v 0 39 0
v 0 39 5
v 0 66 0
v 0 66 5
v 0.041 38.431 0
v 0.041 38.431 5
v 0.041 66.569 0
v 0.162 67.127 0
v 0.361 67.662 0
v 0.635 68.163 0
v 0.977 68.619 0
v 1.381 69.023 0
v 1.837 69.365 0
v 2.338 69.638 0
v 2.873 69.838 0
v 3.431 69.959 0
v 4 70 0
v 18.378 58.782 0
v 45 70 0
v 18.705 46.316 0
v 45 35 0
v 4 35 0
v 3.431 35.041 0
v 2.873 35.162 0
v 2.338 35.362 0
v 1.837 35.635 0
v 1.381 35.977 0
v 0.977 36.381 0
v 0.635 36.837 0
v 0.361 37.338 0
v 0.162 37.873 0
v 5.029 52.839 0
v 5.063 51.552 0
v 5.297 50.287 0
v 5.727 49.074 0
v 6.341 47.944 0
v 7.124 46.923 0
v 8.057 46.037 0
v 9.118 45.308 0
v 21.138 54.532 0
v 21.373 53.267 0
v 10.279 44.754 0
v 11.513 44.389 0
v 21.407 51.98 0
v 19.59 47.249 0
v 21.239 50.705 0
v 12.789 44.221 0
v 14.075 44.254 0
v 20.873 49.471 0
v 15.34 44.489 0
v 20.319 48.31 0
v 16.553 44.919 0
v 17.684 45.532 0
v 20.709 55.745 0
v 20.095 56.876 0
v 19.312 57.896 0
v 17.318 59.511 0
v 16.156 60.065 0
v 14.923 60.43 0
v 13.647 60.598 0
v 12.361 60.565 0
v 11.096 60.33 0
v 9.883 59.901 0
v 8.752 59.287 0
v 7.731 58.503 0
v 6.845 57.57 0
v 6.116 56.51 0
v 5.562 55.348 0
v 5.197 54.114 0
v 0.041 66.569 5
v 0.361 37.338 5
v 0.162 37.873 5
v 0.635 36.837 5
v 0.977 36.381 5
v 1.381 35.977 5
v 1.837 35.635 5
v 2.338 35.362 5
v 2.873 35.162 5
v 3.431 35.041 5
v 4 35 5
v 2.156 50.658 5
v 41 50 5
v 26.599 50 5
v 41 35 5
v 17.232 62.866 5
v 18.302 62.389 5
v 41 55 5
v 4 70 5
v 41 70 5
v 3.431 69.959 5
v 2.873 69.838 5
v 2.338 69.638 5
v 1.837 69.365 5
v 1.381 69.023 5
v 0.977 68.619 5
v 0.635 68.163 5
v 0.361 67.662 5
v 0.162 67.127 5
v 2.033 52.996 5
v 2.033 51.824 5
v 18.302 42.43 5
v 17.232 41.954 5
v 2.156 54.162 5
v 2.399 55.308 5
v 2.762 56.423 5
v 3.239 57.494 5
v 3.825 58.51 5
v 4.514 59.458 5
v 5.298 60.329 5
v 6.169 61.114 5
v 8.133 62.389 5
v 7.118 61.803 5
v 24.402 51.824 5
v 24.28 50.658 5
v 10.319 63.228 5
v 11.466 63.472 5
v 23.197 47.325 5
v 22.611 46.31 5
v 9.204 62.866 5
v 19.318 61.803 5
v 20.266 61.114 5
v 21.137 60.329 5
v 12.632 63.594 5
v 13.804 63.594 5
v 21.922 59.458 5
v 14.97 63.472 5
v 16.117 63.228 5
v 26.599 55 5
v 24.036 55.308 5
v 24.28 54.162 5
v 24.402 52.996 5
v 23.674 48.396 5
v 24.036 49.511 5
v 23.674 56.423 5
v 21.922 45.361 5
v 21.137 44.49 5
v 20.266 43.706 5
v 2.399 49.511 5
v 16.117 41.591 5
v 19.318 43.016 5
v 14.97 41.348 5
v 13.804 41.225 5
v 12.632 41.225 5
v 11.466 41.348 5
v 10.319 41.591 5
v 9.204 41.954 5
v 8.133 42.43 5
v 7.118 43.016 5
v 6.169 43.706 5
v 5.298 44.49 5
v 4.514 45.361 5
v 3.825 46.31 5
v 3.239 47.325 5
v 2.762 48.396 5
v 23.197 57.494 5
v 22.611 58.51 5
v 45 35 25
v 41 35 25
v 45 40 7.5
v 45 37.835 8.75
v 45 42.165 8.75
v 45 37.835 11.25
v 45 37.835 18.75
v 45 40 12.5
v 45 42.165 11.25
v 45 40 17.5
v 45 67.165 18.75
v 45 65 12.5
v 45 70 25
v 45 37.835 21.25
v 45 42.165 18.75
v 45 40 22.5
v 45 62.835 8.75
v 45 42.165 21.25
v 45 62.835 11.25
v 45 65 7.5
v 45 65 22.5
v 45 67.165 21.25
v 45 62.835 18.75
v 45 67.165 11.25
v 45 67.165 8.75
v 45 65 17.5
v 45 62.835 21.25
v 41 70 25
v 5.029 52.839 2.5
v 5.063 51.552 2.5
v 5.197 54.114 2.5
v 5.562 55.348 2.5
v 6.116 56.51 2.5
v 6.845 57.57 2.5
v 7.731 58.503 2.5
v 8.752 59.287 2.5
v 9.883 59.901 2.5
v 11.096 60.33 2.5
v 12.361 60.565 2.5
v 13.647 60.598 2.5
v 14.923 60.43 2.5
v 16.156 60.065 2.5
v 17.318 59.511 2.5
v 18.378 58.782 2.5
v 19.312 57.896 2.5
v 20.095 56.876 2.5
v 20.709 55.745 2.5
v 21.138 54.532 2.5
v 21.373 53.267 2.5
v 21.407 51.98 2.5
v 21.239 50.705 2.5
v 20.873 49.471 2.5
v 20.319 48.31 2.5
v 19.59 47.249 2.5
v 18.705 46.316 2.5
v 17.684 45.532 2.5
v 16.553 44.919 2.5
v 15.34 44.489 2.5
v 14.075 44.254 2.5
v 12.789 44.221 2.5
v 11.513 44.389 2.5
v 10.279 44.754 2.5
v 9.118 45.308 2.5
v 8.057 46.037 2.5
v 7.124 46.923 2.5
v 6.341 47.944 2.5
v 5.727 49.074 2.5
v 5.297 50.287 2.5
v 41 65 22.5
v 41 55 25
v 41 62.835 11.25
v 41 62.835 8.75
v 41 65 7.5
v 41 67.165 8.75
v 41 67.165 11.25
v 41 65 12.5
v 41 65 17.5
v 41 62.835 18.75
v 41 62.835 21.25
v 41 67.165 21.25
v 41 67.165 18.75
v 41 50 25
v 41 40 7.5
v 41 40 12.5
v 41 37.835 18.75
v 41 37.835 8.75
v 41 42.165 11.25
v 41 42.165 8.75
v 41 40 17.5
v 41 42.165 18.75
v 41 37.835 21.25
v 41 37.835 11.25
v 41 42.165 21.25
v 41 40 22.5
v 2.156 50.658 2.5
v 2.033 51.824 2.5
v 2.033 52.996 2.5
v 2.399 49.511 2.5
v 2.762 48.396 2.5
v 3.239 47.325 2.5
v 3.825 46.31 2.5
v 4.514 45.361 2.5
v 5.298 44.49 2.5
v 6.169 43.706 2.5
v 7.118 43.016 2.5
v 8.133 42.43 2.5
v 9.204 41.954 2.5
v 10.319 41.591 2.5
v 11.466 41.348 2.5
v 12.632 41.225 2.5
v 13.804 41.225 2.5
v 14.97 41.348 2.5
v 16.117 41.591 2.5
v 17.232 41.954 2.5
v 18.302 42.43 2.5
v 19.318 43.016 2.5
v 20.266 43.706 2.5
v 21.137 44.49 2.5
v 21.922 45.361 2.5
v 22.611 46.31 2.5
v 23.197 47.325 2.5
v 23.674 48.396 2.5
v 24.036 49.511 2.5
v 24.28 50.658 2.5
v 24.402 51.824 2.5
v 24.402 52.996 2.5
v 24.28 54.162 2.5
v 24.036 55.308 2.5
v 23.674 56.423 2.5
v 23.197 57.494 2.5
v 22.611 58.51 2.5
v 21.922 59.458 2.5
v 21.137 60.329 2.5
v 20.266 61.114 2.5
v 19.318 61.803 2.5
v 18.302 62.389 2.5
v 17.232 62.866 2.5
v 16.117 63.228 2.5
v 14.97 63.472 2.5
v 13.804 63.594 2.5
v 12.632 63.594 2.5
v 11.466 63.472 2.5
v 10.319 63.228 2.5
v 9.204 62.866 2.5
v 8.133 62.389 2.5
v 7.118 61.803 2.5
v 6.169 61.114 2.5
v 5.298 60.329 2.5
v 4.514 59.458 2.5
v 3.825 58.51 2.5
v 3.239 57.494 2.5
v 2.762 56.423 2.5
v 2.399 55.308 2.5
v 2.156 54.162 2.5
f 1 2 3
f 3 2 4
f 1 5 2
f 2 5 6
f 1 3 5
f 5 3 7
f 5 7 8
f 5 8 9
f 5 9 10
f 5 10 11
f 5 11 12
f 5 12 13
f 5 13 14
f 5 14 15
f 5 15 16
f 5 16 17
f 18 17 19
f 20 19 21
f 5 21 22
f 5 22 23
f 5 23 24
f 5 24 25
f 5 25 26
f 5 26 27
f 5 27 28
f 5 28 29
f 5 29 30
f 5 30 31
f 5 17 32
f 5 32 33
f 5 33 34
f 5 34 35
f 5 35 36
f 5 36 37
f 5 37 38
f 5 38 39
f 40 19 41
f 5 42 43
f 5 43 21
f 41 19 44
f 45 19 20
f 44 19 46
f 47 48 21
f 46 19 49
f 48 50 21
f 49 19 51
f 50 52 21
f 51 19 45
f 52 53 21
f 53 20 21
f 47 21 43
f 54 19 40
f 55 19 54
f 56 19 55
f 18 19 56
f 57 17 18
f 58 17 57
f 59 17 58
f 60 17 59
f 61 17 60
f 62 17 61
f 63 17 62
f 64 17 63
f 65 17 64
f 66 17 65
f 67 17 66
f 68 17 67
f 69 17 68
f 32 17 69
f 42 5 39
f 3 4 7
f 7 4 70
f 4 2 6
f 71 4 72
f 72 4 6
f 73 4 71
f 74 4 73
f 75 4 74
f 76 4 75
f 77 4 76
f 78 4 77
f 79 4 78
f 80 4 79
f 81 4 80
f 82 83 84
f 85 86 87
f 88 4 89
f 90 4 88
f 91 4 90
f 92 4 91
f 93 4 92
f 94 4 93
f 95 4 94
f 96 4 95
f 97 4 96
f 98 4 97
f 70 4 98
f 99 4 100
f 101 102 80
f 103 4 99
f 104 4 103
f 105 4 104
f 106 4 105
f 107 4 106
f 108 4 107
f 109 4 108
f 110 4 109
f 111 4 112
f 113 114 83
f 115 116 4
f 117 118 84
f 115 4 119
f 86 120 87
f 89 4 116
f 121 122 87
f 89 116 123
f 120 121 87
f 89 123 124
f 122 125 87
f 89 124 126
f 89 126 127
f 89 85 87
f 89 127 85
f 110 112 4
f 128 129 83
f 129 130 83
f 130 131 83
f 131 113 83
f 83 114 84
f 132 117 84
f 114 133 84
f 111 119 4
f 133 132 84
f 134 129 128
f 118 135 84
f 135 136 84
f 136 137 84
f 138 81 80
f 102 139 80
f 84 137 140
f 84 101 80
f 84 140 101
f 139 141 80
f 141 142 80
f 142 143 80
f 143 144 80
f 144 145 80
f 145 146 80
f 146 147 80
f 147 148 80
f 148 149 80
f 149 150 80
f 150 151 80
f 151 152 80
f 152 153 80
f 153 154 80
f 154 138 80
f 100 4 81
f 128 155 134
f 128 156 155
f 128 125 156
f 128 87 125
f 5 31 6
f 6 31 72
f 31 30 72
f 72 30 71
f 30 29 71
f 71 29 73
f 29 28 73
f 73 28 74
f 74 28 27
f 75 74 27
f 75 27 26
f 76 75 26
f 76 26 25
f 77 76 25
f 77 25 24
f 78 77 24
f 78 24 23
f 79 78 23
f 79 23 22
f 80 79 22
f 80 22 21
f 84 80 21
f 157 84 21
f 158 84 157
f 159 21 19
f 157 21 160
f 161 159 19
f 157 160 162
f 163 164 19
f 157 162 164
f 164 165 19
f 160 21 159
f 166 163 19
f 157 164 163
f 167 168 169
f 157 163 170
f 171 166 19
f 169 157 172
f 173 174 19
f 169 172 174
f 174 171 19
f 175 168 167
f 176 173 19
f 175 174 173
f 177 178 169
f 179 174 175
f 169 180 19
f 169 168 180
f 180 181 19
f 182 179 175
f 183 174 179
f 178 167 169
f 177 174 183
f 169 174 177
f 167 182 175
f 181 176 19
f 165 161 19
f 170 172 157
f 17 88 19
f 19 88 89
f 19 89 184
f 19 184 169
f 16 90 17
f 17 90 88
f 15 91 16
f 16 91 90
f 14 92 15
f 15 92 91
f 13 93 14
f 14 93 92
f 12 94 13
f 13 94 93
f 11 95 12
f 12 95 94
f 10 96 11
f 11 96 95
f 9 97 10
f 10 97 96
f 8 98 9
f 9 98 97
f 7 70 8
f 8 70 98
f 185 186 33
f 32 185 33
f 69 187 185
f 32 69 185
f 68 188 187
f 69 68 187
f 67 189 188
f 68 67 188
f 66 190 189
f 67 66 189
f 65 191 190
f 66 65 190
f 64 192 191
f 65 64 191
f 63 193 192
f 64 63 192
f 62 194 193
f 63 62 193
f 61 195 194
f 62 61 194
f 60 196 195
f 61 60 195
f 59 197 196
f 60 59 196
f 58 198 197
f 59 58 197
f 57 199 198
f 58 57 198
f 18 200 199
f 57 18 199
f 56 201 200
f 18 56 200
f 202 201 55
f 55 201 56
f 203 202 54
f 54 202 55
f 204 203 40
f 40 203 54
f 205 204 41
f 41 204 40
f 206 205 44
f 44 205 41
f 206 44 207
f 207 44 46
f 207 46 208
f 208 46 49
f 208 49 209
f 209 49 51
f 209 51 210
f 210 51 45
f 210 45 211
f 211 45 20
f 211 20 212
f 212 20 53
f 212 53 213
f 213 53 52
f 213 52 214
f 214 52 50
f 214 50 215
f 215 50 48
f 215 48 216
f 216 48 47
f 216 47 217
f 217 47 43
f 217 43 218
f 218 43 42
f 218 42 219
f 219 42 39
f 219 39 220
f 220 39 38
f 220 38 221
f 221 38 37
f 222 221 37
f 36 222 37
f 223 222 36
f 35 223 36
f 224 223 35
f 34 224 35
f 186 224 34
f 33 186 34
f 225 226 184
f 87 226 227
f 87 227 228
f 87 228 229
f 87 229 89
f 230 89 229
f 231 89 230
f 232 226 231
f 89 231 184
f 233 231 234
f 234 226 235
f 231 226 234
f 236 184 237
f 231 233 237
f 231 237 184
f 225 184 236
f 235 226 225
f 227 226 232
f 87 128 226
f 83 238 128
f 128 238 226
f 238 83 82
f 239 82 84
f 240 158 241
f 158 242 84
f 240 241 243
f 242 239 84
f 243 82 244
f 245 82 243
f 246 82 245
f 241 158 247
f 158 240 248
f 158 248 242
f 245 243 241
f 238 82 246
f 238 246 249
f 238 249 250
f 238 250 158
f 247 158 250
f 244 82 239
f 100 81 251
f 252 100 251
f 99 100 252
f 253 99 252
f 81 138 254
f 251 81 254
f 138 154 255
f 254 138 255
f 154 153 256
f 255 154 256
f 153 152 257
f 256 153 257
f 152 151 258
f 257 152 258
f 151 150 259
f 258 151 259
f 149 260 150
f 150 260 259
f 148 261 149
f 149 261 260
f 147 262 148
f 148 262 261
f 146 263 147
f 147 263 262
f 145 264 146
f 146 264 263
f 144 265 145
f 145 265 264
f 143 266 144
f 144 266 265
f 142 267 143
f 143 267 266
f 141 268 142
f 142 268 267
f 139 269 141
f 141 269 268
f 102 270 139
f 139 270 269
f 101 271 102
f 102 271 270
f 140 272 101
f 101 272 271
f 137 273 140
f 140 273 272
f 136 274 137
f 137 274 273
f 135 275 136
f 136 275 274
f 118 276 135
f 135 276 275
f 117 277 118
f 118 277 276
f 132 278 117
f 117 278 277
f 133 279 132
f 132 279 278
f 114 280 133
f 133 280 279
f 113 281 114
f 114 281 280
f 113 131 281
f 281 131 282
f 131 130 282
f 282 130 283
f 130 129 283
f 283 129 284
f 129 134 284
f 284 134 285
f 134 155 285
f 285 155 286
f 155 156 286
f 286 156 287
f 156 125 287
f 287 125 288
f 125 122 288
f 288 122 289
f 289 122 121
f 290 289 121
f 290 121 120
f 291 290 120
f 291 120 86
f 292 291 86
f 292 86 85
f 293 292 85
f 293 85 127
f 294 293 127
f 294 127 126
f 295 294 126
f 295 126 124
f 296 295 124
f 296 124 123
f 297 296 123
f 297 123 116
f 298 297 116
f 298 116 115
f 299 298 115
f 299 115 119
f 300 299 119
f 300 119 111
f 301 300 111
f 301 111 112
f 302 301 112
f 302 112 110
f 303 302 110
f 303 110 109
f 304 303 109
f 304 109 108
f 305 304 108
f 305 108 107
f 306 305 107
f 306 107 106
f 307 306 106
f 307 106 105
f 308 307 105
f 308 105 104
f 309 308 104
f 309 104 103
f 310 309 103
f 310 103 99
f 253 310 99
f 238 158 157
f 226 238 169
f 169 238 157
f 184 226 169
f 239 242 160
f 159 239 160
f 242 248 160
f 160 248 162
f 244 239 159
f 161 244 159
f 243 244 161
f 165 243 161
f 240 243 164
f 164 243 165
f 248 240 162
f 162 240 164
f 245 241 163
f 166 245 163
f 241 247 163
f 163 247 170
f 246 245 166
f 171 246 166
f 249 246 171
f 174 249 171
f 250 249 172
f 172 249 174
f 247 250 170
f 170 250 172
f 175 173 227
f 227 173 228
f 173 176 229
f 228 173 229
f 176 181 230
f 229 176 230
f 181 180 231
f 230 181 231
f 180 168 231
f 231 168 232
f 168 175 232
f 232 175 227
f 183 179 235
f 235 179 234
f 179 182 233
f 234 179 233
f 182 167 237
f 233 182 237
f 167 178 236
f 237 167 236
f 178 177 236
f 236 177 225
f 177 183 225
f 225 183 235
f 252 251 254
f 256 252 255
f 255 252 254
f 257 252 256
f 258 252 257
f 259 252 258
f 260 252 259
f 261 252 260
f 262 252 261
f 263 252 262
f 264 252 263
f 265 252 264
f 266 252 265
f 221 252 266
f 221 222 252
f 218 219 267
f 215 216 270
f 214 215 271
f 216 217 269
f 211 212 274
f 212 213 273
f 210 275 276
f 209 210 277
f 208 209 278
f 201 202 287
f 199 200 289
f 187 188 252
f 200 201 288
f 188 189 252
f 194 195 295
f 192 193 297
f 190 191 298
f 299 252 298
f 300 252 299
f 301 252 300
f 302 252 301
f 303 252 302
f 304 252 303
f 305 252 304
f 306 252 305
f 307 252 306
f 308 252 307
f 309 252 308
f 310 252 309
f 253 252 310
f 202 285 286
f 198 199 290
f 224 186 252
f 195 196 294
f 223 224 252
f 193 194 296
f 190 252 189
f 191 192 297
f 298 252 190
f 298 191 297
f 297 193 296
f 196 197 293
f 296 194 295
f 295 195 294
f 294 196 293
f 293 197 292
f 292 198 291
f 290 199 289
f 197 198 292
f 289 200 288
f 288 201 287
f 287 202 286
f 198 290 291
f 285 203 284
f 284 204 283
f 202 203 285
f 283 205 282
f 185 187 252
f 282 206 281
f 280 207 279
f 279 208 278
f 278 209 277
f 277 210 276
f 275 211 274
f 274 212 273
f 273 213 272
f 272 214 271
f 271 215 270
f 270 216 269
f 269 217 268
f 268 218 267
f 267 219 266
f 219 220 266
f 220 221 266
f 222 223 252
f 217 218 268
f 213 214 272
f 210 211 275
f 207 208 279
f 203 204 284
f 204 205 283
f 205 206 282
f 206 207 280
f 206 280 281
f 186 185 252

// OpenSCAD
// file: ../libs/utils/build_plate.scad
// Minimal build plate helper for browser customizer builds.
module build_plate(build_plate_selector=0, build_plate_manual_x=100, build_plate_manual_y=100) {
  // intentionally no-op in browser preview
}
// file: ../libs/build_plate.scad
//use this to include a build plate visualization in your openSCAD scripts. Very useful for things designed to be edited in Makerbot Customizer

//to use, either include or use <utils/build_plate.scad>

//then just call build_plate(); with the following arguments (also, you have to have a real object in your scene for this to render)

//putting 0 as the first argument will give you a Replicator 2 build plate
//putting 1 as the first argument will give you a Replicator 1 build plate
//putting 2 as the first argument will give you a Thingomatic build plate
//putting 3 as the first argument will give you a manually adjustable build plate (note: if you use this option, you need to specify your build plates X length (in mm) as the second argument and the Y length (in mm) as the third argument. eg. build_plate(3,150,120);)

/*

to give your user control of which build plate they see in Customizer, include the following code:

use <utils/build_plate.scad>

//for display only, doesn't contribute to final object
build_plate_selector = 0; //[0:Replicator 2,1: Replicator,2:Thingomatic,3:Manual]
//when Build Plate Selector is set to "manual" this controls the build plate x dimension
build_plate_manual_x = 100; //[100:400]
//when Build Plate Selector is set to "manual" this controls the build plate y dimension
build_plate_manual_y = 100; //[100:400]

build_plate(build_plate_selector,build_plate_manual_x,build_plate_manual_y);

*/




//to see how this works, uncomment the following code

//build_plate_selector = 0; //[0:Replicator 2,1: Replicator,2:Thingomatic,3:Manual]
//build_plate_manual_x = 100; //[100:400]
//build_plate_manual_y = 100; //[100:400]
//
//build_plate(build_plate_selector,build_plate_manual_x,build_plate_manual_y);
//
//cube(5);


module build_plate(bp,manX,manY){

		translate([0,0,-.52]){
			if(bp == 0){
				%cube([285,153,1],center = true);
			}
			if(bp == 1){
				%cube([225,145,1],center = true);
			}
			if(bp == 2){
				%cube([120,120,1],center = true);
			}
			if(bp == 3){
				%cube([manX,manY,1],center = true);
			}
		
		}
		translate([0,0,-.5]){
			if(bp == 0){
				for(i = [-14:14]){
					translate([i*10,0,0])
					%cube([.5,153,1.01],center = true);
				}
				for(i = [-7:7]){
					translate([0,i*10,0])
					%cube([285,.5,1.01],center = true);
				}	
			}
			if(bp == 1){
				for(i = [-11:11]){
					translate([i*10,0,0])
						%cube([.5,145,1.01],center = true);
				}
				for(i = [-7:7]){
					translate([0,i*10,0])
						%cube([225,.5,1.01],center = true);
				}
			}
			if(bp == 2){
				for(i = [-6:6]){
					translate([i*10,0,0])
						%cube([.5,120,1.01],center = true);
				}
				for(i = [-6:6]){
					translate([0,i*10,0])
						%cube([120,.5,1.01],center = true);
				}
			}
			if(bp == 3){
				for(i = [-(floor(manX/20)):floor(manX/20)]){
					translate([i*10,0,0])
						%cube([.5,manY,1.01],center = true);
				}
				for(i = [-(floor(manY/20)):floor(manY/20)]){
					translate([0,i*10,0])
						%cube([manX,.5,1.01],center = true);
				}
			}
		}
}
// file: ../libs/obiscad/bcube.scad
//------------------------------------------------------------------------------
//  Bevel edge cube.
//  (c) Juan Gonzalez-Gomez (Obijuan), Sep-2012
//------------------------------------------------------------------------------

//----------------- IMPLEMENTATION USING THE MINKOWSKI OPERATOR ----------------

//------------------------------------------------------------------------------
//-- Bevel Cube main function
//-- Parameters:
//--   * Size:  Cube size
//--   * cr : Corner radius (if cr==0, a standar cube is built)
//--   * cres:  Corner resolution (in points). cres=0 means flat corners
//------------------------------------------------------------------------------
module bcube(size,cr=0,cres=0)
{
  //-- Internal cube size
  bsize = size - 2*[cr,cr,0];

  //-- Get the (x,y) coorner coordinates in the 1st cuadrant
  x = bsize[0]/2;
  y = bsize[1]/2;

  //-- A corner radius of 0 means a standar cube!
  if (cr==0)
    cube(bsize,center=true);
  else {

      
      //-- The height of minkowski object is double. So
      //-- we sould scale by 0.5
      scale([1,1,0.5])

      //-- This translation is for centering the minkowski objet
      translate([-x, -y,0])

      //-- Built the  beveled cube with minkowski
      minkowski() {

        //-- Internal cube
        cube(bsize,center=true);

        //-- Cylinder in the corner (1st cuadrant)
        translate([x,y, 0])
          cylinder(r=cr, h=bsize[2],center=true, $fn=4*(cres+1));
      }
  }

}


//-- Examples of use of the bcube() module

//-- Standar cube
translate([-15,15,0])
bcube([20,20,10]);

//-- Beveled cube (0 point resolution)
translate([15,15,0])
  bcube([20,20,10],cr=4);

//-- Beveled cube (1 point resolution)
translate([-15,-15,0])
  bcube([20,20,10],cr=4, cres=1);

//-- Beveled cube (4 points resolution)
translate([15,-15,0])
  bcube([20,20,10],cr=4, cres=4);
// main file
// Cyclone PCB Factory: a 3D printable CNC machine for PCB manufacture
// Created by Carlosgs (http://carlosgs.es)
// License: Attribution - Share Alike - Creative Commons (http://creativecommons.org/licenses/by-sa/3.0/)

use <../libs/obiscad/bcube.scad>
use <../libs/build_plate.scad>

bottom_thickness = 4;
base_width = 20;
base_length = 25;
base_screw_diameter = 5;

motor_width = 43;
motor_length = 49; // not used
motor_screw_distance = 31.3;
motor_center_diameter = 23;

motor_screw_diameter = 3.7;
motor_screw_head_diameter = 8;

bearing_diameter = 22.4;
M8_rod_diameter = 8.2;

axis_distance = 32;

wall_thickness = 5;
wall_height = 45;
wall_width = 70;

idler_width = 25;

module motor_stand_no_base(with_motor=true) {
difference() {
  translate([wall_height/2,wall_width/2,wall_thickness/2])
    bcube([wall_height,wall_width,wall_thickness],cr=4,cres=10);

  // Position relative to motor shaft
  translate([motor_width/2,motor_width/2,wall_thickness/2]) {
    if(with_motor) {
    // Hole for the motor shaft
    translate([0,-wall_width/2,0])
      cube([20,wall_width,10*wall_thickness],cr=4,cres=10,center=true);
    cylinder(r=motor_center_diameter/2,h=10*wall_thickness,center=true,$fn=40);

    // Screws for holding the motor
    for(i=[-1,1]) for(j=[-1,1])
    translate([i*motor_screw_distance/2,j*motor_screw_distance/2,0]) {
      cylinder(r=motor_screw_diameter/2,h=10*wall_thickness,center=true,$fn=40);
      cylinder(r=motor_screw_head_diameter/2,h=10*wall_thickness,center=false,$fn=40);
    }
    } // End if with motor

    // Bearing holes
    rotate([0,0,15]) translate([0,axis_distance,0]) {
      cylinder(r=(M8_rod_diameter*2)/2,h=10*wall_thickness,center=true,$fn=40);
      cylinder(r=bearing_diameter/2,h=10*wall_thickness,center=false,$fn=60);

    }

  } // End of translate relative to motor shaft
} // End of difference
}

module motor_stand(with_motor=true) {
  union() {
    motor_stand_no_base(with_motor);
    difference() {
      union() {
        translate([wall_height-bottom_thickness,wall_width-base_width]) {
          cube([bottom_thickness,base_width,base_length]);
          hull() {
            cube([bottom_thickness,5,base_length]);
            translate([-18,0,0])
              cube([0.001,5,0.001]);
          }
        }
      }
      // --- screws for the base ---
      translate([wall_height,wall_width-5,15])
        rotate([0,90,0]) {
          translate([-5,0,0])
            cylinder(r=base_screw_diameter/2,h=100,center=true,$fn=6);
          translate([5,0,0])
            cylinder(r=base_screw_diameter/2,h=100,center=true,$fn=6);
        }
    } // End of difference
  }
}


module idle_stand() {
  intersection() { // Remove the motor part
    motor_stand(with_motor=false);
    translate([wall_height/2,wall_width/2+35,wall_thickness/2])
      bcube([wall_height,wall_width,100],cr=4,cres=10);
  }
}

//for display only, doesn't contribute to final object
build_plate(3,200,200);

//motor_stand();
idle_stand();
translate([0,105,0])
    mirror([0,1,0])
    difference() {
      union() {
        translate([wall_height-bottom_thickness,wall_width-base_width]) {
          cube([bottom_thickness,base_width,base_length]);
          hull() {
            cube([bottom_thickness,5,base_length]);
            translate([-18,0,0])
              cube([0.001,5,0.001]);
          }
        }
      }
      // --- screws for the base ---
      translate([wall_height,wall_width-5,15])
        rotate([0,90,0]) {
          translate([-5,0,0])
            cylinder(r=base_screw_diameter/2,h=100,center=true,$fn=6);
          translate([5,0,0])
            cylinder(r=base_screw_diameter/2,h=100,center=true,$fn=6);
        }
    }
